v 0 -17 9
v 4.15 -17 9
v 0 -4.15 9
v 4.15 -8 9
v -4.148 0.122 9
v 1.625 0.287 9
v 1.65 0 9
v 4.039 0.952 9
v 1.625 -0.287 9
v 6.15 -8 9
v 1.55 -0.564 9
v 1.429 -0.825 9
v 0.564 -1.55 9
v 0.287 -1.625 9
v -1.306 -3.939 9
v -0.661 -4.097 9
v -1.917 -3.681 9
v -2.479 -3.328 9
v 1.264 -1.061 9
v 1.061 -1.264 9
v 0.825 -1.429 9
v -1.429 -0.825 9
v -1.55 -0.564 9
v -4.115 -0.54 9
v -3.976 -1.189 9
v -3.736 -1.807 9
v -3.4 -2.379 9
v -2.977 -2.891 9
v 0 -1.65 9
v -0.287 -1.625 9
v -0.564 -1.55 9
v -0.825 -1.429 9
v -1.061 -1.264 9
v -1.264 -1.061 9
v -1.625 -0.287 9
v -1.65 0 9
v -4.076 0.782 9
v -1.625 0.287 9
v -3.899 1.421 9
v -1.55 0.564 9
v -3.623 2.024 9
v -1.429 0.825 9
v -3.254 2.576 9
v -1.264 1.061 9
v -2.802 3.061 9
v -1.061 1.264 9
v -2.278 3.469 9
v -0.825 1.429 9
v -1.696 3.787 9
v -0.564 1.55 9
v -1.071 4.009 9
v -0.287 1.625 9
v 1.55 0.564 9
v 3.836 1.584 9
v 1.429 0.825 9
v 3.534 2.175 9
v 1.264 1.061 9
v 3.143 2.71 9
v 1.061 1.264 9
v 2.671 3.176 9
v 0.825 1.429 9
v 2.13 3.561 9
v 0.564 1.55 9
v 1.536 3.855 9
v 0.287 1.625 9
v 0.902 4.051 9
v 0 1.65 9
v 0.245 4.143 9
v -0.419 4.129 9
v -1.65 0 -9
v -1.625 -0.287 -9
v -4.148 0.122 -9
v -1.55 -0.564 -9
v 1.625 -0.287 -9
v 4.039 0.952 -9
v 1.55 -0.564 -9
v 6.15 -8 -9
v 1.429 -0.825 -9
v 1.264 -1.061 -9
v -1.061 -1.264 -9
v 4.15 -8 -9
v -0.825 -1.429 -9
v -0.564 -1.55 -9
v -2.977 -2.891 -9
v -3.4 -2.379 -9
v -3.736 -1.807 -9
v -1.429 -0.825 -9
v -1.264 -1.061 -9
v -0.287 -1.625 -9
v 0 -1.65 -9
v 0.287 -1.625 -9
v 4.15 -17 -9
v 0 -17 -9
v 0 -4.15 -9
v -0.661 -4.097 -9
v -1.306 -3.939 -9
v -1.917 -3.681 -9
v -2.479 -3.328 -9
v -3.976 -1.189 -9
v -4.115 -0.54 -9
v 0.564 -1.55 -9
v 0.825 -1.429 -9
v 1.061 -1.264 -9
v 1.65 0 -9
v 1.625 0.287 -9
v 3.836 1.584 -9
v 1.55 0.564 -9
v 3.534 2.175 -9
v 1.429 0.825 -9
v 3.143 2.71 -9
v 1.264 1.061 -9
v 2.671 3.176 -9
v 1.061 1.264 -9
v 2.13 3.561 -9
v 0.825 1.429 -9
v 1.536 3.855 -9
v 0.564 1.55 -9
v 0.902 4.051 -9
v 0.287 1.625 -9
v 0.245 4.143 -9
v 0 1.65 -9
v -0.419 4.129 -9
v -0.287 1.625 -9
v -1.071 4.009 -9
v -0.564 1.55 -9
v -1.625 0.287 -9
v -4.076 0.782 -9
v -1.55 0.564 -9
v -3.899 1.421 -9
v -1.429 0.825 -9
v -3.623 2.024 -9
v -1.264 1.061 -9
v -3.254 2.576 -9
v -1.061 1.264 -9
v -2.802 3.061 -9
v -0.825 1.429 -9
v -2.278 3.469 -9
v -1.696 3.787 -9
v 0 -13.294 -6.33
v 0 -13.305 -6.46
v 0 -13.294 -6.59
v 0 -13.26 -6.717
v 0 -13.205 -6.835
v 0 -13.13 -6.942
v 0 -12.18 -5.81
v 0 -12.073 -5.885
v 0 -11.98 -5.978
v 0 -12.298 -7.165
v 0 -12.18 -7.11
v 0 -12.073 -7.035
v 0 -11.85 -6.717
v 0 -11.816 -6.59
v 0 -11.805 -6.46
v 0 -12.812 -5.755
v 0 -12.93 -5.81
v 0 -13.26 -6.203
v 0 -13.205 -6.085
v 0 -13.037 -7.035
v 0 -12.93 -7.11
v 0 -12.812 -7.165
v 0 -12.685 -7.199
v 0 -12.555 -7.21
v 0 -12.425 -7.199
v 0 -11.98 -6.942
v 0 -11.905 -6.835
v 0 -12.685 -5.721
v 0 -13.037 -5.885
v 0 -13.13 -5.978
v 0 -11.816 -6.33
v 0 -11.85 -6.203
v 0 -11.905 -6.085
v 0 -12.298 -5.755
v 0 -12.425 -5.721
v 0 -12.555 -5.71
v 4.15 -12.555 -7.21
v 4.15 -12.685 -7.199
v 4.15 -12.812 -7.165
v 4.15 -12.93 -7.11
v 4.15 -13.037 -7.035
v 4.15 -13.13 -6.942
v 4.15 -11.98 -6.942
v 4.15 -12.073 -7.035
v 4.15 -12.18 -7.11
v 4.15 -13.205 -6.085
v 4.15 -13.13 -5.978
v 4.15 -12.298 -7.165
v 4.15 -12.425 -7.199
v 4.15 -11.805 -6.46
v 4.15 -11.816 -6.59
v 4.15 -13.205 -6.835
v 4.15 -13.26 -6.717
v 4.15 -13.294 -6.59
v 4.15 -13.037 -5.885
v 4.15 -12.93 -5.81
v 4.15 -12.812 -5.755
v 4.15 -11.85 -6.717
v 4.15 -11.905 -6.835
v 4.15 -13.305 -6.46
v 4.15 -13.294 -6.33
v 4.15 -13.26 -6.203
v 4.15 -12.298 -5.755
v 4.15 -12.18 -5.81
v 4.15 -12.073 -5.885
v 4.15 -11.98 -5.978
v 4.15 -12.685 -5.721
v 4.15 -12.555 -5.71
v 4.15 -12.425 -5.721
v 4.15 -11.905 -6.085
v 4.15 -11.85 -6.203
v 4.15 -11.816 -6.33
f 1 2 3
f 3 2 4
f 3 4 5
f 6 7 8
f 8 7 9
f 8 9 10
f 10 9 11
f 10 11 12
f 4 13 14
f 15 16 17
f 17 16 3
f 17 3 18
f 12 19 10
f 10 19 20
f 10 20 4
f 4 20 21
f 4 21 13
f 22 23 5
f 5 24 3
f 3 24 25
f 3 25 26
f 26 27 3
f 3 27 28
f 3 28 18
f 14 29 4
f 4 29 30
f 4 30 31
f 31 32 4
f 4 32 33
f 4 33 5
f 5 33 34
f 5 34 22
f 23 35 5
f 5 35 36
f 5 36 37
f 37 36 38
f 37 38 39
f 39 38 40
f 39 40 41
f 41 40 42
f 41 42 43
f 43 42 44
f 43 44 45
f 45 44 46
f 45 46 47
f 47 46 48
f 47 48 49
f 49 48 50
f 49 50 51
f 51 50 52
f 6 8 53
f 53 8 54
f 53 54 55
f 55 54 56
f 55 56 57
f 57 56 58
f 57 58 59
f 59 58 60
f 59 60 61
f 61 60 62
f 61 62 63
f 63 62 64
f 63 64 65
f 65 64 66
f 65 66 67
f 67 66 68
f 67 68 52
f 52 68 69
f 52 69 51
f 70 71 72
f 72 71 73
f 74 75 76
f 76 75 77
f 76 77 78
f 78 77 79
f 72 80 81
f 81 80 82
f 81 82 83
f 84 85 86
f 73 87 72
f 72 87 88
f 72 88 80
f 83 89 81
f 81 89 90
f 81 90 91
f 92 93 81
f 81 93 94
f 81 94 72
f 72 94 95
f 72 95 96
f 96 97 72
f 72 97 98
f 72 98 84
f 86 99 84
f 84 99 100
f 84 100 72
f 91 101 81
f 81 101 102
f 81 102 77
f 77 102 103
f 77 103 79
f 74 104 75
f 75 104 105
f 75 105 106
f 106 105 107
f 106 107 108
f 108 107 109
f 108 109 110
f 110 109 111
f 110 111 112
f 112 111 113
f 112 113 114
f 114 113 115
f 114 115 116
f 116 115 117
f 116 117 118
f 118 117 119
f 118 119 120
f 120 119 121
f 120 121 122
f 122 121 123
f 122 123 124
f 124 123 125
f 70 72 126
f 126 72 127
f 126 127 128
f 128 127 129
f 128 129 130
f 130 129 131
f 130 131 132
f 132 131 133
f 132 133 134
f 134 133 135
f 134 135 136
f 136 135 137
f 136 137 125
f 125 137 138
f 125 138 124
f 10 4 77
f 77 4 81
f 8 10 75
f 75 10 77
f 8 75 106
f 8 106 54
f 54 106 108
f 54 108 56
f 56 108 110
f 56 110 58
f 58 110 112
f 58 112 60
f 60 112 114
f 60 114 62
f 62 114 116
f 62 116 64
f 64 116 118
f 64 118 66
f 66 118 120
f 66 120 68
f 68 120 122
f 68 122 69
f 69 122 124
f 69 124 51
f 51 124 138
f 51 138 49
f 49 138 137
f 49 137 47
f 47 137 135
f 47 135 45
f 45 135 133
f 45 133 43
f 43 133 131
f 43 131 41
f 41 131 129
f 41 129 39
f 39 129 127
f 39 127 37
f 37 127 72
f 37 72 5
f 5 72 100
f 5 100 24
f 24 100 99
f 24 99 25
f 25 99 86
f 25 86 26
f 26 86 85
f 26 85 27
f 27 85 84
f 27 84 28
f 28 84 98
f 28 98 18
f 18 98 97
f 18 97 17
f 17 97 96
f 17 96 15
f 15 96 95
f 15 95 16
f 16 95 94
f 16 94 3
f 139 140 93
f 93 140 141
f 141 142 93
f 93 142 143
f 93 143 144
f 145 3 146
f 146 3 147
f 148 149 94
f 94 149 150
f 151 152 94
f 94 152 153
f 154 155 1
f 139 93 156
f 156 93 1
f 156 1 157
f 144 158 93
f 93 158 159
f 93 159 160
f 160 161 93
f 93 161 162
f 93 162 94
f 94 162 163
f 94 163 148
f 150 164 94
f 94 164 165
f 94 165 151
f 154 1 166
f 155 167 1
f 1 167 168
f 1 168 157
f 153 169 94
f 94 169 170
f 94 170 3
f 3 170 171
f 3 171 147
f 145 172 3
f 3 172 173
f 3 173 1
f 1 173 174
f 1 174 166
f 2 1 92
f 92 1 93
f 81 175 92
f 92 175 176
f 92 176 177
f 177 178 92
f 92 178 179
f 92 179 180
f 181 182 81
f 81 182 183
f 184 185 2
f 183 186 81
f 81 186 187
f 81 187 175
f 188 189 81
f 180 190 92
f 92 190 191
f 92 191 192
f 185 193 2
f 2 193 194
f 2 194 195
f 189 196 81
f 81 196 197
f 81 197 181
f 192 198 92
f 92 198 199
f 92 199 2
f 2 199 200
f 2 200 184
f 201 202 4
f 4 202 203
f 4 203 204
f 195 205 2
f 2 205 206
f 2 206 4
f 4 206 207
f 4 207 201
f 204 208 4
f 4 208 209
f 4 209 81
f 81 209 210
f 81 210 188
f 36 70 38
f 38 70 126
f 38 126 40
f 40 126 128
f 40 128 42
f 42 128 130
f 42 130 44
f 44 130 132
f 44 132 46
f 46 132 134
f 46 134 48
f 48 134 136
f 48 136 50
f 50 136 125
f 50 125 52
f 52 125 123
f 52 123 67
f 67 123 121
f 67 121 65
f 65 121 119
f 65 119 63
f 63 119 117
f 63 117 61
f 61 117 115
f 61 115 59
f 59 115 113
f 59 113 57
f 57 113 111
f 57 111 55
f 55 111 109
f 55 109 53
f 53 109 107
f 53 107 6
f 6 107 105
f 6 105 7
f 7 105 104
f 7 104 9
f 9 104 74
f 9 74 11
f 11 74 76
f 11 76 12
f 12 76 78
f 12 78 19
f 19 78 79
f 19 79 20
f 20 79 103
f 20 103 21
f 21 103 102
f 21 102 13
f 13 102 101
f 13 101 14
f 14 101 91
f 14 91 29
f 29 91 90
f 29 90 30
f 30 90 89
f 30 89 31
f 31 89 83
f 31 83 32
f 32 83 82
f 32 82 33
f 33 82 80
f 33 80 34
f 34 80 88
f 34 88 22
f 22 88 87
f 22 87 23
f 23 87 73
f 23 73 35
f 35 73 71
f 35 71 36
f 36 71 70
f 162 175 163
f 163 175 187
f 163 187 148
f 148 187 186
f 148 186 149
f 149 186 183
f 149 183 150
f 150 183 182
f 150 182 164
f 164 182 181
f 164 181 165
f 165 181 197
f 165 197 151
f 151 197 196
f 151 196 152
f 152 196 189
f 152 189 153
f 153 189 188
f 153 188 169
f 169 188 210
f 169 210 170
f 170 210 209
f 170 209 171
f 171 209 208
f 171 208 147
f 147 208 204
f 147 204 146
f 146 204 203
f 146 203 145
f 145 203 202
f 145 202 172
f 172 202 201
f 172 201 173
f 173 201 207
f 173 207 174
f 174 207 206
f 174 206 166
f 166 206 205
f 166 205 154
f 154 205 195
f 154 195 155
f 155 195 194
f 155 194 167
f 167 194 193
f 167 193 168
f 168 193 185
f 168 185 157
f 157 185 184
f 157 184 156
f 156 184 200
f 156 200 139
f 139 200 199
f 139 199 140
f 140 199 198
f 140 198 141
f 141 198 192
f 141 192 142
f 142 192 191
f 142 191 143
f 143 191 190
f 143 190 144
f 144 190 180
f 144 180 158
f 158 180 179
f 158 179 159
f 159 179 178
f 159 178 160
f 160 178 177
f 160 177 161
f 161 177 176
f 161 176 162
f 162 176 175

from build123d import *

# Parameters (mm, degrees)
ESQUISSE1_R             = 1.65
BOSS_EXTRU_1_DEPTH      = 9
ESQUISSE3_R             = 0.75
ENL_V_MAT_EXTRU_2_DEPTH = 21.949701669


with BuildPart() as part:
    # Esquisse1 → Boss.-Extru.1 (new, symmetric)
    with BuildSketch(Plane.XY):
        with BuildLine():
            Line((0, -4.15), (0, -17))
            Line((0, -17), (4.15, -17))
            Line((4.15, -17), (4.15, -8))
            Line((4.15, -8), (6.15, -8))
            Line((6.15, -8), (4.039246655, 0.952358366))
            ThreePointArc((4.039246655, 0.952358366), (-3.253827532, 2.575870026), (0, -4.15))
        make_face()
        Circle(ESQUISSE1_R, mode=Mode.SUBTRACT)
    extrude(amount=BOSS_EXTRU_1_DEPTH, both=True)

    # Esquisse3 → Enlèv. mat.-Extru.2 (cut, through all)
    with BuildSketch(Plane(origin=(4.15, 0, 0), x_dir=(0, 0, -1), z_dir=(1, 0, 0))):
        with Locations((6.46, -12.555)):
            Circle(ESQUISSE3_R)
    extrude(amount=-ENL_V_MAT_EXTRU_2_DEPTH, mode=Mode.SUBTRACT)


solid = part.part
